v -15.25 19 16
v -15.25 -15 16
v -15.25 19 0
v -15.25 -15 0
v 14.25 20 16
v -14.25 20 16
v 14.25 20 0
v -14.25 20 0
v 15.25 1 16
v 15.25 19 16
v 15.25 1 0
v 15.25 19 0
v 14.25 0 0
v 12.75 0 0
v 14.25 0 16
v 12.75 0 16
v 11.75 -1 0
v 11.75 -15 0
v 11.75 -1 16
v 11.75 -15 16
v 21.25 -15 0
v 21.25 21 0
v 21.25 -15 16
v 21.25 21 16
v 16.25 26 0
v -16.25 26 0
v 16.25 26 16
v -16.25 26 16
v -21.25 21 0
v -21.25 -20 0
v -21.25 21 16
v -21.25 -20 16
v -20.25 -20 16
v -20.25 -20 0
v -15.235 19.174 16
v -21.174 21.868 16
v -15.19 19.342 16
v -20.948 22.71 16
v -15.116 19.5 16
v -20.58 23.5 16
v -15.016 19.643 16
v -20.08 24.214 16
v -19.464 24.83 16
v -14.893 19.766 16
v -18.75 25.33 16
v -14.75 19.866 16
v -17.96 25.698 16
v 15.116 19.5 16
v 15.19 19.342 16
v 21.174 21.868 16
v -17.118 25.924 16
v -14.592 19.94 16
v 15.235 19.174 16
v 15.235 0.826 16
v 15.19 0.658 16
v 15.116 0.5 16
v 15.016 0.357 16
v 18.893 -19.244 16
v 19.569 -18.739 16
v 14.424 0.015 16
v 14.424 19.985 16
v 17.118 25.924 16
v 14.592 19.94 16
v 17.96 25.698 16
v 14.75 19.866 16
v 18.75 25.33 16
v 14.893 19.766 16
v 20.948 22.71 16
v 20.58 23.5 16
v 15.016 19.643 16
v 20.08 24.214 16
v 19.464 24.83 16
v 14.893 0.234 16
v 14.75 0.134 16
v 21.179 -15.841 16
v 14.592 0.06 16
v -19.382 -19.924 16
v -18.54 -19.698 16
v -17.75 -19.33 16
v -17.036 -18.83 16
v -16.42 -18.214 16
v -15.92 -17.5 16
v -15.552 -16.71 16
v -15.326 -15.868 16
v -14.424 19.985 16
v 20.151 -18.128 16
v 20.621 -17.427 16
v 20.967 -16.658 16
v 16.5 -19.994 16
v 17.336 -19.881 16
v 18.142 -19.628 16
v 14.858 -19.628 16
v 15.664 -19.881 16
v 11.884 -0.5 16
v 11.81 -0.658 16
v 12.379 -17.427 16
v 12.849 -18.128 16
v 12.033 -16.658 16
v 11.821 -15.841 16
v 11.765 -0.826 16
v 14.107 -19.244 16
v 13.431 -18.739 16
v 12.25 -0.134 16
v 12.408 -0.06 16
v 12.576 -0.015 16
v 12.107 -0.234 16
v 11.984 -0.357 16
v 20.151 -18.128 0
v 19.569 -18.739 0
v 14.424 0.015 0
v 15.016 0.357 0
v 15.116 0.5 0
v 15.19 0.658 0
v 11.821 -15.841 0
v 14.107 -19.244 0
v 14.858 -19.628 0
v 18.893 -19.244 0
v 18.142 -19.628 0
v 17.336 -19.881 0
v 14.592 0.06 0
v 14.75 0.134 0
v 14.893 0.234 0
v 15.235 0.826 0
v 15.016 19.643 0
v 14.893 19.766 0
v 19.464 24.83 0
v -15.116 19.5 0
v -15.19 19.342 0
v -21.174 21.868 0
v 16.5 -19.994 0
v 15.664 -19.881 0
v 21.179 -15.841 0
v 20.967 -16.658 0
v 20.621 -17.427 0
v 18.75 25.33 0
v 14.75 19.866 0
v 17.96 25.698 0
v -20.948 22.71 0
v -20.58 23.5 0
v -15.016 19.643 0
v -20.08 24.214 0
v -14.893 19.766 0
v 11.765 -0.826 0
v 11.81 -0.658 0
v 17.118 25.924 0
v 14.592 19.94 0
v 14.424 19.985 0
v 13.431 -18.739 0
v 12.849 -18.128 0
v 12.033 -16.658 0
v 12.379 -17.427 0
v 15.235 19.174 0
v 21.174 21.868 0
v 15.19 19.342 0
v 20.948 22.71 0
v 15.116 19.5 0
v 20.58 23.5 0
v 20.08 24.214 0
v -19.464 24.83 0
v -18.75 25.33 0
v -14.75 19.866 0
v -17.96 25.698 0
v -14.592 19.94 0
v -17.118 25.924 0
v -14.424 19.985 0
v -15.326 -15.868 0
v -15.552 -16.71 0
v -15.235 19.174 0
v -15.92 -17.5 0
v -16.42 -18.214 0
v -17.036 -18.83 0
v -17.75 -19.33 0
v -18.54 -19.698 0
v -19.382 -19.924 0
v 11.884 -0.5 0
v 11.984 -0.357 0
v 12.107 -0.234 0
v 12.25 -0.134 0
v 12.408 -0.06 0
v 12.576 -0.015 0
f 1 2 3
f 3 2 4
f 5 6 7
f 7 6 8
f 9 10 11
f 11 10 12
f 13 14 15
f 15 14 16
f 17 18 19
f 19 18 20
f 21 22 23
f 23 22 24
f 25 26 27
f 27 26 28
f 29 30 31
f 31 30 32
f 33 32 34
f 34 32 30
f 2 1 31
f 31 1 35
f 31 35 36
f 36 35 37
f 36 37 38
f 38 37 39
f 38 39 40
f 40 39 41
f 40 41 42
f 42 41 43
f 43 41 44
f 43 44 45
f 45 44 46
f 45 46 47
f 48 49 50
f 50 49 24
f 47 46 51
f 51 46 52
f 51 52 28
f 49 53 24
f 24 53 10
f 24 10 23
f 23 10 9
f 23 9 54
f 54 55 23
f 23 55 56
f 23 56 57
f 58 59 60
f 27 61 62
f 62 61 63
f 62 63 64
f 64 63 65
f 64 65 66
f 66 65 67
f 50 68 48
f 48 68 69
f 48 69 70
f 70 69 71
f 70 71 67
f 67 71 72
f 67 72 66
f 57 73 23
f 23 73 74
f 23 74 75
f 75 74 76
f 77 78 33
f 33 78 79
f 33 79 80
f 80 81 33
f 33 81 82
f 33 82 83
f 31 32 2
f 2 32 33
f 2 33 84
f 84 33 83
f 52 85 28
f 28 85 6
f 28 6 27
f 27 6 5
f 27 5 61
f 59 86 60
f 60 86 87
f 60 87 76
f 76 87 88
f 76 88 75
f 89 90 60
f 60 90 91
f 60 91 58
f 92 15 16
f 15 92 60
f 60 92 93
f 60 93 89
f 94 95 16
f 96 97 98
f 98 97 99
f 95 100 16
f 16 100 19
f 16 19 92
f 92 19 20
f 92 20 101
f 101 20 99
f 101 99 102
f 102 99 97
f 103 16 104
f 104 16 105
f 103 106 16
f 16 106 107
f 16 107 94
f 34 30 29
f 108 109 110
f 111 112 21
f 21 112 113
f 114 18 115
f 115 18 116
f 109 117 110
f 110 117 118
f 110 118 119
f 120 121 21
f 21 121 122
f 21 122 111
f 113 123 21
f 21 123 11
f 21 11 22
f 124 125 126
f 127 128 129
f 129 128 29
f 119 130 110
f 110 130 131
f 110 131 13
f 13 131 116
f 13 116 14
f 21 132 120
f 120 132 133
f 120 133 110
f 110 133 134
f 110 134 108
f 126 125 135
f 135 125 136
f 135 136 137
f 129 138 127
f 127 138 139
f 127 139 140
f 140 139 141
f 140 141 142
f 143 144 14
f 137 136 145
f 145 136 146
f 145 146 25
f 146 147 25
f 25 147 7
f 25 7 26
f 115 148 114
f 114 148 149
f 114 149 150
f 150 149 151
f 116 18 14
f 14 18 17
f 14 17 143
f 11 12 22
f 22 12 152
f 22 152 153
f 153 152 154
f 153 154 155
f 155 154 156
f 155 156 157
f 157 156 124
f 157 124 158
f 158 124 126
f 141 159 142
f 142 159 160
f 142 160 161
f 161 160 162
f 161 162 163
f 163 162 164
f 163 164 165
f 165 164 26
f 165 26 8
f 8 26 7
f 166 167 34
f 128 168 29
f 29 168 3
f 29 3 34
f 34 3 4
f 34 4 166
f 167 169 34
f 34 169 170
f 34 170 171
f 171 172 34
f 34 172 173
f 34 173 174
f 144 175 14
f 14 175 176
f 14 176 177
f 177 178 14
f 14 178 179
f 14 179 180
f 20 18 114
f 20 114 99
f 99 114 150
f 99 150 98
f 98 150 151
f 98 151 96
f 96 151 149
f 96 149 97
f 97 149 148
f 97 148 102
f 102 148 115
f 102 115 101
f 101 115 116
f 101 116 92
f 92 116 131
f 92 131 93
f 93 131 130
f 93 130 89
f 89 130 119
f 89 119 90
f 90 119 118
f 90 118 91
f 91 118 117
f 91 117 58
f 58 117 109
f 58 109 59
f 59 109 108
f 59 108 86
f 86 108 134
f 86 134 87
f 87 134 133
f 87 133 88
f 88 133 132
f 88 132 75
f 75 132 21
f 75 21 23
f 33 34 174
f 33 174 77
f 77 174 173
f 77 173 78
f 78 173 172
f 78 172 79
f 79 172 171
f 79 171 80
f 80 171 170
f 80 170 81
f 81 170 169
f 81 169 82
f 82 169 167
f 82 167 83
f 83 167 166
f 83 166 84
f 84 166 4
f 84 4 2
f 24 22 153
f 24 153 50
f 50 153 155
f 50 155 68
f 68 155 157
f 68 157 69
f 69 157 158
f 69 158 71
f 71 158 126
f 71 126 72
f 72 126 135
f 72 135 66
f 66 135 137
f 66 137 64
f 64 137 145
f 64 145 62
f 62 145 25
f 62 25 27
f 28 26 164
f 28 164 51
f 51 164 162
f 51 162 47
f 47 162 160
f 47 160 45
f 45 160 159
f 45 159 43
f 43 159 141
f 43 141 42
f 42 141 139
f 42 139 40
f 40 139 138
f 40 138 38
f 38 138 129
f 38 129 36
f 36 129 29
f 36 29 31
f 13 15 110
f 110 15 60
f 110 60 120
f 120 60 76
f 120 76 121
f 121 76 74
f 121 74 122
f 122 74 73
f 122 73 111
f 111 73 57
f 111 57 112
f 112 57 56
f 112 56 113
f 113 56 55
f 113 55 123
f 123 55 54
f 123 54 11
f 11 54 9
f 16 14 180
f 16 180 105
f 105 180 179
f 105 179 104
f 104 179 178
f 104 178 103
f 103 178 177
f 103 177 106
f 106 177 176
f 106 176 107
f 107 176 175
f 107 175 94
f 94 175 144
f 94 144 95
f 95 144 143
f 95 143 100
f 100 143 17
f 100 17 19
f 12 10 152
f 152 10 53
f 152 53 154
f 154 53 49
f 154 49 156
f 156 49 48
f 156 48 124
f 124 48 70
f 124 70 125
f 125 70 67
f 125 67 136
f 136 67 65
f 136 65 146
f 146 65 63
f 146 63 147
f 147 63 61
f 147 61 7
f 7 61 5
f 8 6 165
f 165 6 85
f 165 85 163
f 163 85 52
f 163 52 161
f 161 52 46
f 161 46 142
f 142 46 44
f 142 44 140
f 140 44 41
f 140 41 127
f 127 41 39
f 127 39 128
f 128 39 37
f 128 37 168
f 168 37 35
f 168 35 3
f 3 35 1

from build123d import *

# Parameters (mm, degrees)
BOSS_EXTRUDE1_DEPTH = 16
FILLET1_R           = 5
FILLET2_R           = 1


with BuildPart() as part:
    # Sketch1 → Boss-Extrude1 (new body)
    with BuildSketch(Plane.XY):
        Polygon((15.25, 0), (11.75, 0), (11.75, -20), (21.25, -20), (21.25, 26), (-21.25, 26), (-21.25, -20), (-15.25, -20), (-15.25, 20), (15.25, 20), align=None)
    extrude(amount=BOSS_EXTRUDE1_DEPTH)

    # Fillet1
    # the kernel refuses this fillet: 5 mm, written as the material it takes off along each edge
    with BuildSketch(Plane(origin=(-15.25, -20, -12.5), x_dir=(-1, 0, 0), z_dir=(0, 0, 1)), Plane(origin=(-21.25, 26, -12.5), x_dir=(1, 0, 0), z_dir=(0, 0, 1)), Plane(origin=(21.25, 26, -12.5), x_dir=(0, -1, 0), z_dir=(0, 0, 1)), Plane(origin=(21.25, -20, -12.5), x_dir=(-1, 0, 0), z_dir=(0, 0, 1)), Plane(origin=(11.75, -20, -12.5), x_dir=(0, 1, 0), z_dir=(0, 0, 1))) as fillet1_piece_1:
        with BuildLine():
            CenterArc((FILLET1_R, -FILLET1_R), FILLET1_R, 90, 90)
            Line((0, -FILLET1_R), (0, 0))
            Line((0, 0), (FILLET1_R, 0))
        make_face()
    extrude(amount=41, mode=Mode.SUBTRACT)

    # Fillet2
    fillet2_edges = [part.edges().sort_by_distance(p)[0] for p in [
        (11.75, 0, 8),
        (15.25, 0, 8),
        (15.25, 20, 8),
        (-15.25, 20, 8),
    ]]
    fillet(fillet2_edges, radius=FILLET2_R)


solid = part.part
